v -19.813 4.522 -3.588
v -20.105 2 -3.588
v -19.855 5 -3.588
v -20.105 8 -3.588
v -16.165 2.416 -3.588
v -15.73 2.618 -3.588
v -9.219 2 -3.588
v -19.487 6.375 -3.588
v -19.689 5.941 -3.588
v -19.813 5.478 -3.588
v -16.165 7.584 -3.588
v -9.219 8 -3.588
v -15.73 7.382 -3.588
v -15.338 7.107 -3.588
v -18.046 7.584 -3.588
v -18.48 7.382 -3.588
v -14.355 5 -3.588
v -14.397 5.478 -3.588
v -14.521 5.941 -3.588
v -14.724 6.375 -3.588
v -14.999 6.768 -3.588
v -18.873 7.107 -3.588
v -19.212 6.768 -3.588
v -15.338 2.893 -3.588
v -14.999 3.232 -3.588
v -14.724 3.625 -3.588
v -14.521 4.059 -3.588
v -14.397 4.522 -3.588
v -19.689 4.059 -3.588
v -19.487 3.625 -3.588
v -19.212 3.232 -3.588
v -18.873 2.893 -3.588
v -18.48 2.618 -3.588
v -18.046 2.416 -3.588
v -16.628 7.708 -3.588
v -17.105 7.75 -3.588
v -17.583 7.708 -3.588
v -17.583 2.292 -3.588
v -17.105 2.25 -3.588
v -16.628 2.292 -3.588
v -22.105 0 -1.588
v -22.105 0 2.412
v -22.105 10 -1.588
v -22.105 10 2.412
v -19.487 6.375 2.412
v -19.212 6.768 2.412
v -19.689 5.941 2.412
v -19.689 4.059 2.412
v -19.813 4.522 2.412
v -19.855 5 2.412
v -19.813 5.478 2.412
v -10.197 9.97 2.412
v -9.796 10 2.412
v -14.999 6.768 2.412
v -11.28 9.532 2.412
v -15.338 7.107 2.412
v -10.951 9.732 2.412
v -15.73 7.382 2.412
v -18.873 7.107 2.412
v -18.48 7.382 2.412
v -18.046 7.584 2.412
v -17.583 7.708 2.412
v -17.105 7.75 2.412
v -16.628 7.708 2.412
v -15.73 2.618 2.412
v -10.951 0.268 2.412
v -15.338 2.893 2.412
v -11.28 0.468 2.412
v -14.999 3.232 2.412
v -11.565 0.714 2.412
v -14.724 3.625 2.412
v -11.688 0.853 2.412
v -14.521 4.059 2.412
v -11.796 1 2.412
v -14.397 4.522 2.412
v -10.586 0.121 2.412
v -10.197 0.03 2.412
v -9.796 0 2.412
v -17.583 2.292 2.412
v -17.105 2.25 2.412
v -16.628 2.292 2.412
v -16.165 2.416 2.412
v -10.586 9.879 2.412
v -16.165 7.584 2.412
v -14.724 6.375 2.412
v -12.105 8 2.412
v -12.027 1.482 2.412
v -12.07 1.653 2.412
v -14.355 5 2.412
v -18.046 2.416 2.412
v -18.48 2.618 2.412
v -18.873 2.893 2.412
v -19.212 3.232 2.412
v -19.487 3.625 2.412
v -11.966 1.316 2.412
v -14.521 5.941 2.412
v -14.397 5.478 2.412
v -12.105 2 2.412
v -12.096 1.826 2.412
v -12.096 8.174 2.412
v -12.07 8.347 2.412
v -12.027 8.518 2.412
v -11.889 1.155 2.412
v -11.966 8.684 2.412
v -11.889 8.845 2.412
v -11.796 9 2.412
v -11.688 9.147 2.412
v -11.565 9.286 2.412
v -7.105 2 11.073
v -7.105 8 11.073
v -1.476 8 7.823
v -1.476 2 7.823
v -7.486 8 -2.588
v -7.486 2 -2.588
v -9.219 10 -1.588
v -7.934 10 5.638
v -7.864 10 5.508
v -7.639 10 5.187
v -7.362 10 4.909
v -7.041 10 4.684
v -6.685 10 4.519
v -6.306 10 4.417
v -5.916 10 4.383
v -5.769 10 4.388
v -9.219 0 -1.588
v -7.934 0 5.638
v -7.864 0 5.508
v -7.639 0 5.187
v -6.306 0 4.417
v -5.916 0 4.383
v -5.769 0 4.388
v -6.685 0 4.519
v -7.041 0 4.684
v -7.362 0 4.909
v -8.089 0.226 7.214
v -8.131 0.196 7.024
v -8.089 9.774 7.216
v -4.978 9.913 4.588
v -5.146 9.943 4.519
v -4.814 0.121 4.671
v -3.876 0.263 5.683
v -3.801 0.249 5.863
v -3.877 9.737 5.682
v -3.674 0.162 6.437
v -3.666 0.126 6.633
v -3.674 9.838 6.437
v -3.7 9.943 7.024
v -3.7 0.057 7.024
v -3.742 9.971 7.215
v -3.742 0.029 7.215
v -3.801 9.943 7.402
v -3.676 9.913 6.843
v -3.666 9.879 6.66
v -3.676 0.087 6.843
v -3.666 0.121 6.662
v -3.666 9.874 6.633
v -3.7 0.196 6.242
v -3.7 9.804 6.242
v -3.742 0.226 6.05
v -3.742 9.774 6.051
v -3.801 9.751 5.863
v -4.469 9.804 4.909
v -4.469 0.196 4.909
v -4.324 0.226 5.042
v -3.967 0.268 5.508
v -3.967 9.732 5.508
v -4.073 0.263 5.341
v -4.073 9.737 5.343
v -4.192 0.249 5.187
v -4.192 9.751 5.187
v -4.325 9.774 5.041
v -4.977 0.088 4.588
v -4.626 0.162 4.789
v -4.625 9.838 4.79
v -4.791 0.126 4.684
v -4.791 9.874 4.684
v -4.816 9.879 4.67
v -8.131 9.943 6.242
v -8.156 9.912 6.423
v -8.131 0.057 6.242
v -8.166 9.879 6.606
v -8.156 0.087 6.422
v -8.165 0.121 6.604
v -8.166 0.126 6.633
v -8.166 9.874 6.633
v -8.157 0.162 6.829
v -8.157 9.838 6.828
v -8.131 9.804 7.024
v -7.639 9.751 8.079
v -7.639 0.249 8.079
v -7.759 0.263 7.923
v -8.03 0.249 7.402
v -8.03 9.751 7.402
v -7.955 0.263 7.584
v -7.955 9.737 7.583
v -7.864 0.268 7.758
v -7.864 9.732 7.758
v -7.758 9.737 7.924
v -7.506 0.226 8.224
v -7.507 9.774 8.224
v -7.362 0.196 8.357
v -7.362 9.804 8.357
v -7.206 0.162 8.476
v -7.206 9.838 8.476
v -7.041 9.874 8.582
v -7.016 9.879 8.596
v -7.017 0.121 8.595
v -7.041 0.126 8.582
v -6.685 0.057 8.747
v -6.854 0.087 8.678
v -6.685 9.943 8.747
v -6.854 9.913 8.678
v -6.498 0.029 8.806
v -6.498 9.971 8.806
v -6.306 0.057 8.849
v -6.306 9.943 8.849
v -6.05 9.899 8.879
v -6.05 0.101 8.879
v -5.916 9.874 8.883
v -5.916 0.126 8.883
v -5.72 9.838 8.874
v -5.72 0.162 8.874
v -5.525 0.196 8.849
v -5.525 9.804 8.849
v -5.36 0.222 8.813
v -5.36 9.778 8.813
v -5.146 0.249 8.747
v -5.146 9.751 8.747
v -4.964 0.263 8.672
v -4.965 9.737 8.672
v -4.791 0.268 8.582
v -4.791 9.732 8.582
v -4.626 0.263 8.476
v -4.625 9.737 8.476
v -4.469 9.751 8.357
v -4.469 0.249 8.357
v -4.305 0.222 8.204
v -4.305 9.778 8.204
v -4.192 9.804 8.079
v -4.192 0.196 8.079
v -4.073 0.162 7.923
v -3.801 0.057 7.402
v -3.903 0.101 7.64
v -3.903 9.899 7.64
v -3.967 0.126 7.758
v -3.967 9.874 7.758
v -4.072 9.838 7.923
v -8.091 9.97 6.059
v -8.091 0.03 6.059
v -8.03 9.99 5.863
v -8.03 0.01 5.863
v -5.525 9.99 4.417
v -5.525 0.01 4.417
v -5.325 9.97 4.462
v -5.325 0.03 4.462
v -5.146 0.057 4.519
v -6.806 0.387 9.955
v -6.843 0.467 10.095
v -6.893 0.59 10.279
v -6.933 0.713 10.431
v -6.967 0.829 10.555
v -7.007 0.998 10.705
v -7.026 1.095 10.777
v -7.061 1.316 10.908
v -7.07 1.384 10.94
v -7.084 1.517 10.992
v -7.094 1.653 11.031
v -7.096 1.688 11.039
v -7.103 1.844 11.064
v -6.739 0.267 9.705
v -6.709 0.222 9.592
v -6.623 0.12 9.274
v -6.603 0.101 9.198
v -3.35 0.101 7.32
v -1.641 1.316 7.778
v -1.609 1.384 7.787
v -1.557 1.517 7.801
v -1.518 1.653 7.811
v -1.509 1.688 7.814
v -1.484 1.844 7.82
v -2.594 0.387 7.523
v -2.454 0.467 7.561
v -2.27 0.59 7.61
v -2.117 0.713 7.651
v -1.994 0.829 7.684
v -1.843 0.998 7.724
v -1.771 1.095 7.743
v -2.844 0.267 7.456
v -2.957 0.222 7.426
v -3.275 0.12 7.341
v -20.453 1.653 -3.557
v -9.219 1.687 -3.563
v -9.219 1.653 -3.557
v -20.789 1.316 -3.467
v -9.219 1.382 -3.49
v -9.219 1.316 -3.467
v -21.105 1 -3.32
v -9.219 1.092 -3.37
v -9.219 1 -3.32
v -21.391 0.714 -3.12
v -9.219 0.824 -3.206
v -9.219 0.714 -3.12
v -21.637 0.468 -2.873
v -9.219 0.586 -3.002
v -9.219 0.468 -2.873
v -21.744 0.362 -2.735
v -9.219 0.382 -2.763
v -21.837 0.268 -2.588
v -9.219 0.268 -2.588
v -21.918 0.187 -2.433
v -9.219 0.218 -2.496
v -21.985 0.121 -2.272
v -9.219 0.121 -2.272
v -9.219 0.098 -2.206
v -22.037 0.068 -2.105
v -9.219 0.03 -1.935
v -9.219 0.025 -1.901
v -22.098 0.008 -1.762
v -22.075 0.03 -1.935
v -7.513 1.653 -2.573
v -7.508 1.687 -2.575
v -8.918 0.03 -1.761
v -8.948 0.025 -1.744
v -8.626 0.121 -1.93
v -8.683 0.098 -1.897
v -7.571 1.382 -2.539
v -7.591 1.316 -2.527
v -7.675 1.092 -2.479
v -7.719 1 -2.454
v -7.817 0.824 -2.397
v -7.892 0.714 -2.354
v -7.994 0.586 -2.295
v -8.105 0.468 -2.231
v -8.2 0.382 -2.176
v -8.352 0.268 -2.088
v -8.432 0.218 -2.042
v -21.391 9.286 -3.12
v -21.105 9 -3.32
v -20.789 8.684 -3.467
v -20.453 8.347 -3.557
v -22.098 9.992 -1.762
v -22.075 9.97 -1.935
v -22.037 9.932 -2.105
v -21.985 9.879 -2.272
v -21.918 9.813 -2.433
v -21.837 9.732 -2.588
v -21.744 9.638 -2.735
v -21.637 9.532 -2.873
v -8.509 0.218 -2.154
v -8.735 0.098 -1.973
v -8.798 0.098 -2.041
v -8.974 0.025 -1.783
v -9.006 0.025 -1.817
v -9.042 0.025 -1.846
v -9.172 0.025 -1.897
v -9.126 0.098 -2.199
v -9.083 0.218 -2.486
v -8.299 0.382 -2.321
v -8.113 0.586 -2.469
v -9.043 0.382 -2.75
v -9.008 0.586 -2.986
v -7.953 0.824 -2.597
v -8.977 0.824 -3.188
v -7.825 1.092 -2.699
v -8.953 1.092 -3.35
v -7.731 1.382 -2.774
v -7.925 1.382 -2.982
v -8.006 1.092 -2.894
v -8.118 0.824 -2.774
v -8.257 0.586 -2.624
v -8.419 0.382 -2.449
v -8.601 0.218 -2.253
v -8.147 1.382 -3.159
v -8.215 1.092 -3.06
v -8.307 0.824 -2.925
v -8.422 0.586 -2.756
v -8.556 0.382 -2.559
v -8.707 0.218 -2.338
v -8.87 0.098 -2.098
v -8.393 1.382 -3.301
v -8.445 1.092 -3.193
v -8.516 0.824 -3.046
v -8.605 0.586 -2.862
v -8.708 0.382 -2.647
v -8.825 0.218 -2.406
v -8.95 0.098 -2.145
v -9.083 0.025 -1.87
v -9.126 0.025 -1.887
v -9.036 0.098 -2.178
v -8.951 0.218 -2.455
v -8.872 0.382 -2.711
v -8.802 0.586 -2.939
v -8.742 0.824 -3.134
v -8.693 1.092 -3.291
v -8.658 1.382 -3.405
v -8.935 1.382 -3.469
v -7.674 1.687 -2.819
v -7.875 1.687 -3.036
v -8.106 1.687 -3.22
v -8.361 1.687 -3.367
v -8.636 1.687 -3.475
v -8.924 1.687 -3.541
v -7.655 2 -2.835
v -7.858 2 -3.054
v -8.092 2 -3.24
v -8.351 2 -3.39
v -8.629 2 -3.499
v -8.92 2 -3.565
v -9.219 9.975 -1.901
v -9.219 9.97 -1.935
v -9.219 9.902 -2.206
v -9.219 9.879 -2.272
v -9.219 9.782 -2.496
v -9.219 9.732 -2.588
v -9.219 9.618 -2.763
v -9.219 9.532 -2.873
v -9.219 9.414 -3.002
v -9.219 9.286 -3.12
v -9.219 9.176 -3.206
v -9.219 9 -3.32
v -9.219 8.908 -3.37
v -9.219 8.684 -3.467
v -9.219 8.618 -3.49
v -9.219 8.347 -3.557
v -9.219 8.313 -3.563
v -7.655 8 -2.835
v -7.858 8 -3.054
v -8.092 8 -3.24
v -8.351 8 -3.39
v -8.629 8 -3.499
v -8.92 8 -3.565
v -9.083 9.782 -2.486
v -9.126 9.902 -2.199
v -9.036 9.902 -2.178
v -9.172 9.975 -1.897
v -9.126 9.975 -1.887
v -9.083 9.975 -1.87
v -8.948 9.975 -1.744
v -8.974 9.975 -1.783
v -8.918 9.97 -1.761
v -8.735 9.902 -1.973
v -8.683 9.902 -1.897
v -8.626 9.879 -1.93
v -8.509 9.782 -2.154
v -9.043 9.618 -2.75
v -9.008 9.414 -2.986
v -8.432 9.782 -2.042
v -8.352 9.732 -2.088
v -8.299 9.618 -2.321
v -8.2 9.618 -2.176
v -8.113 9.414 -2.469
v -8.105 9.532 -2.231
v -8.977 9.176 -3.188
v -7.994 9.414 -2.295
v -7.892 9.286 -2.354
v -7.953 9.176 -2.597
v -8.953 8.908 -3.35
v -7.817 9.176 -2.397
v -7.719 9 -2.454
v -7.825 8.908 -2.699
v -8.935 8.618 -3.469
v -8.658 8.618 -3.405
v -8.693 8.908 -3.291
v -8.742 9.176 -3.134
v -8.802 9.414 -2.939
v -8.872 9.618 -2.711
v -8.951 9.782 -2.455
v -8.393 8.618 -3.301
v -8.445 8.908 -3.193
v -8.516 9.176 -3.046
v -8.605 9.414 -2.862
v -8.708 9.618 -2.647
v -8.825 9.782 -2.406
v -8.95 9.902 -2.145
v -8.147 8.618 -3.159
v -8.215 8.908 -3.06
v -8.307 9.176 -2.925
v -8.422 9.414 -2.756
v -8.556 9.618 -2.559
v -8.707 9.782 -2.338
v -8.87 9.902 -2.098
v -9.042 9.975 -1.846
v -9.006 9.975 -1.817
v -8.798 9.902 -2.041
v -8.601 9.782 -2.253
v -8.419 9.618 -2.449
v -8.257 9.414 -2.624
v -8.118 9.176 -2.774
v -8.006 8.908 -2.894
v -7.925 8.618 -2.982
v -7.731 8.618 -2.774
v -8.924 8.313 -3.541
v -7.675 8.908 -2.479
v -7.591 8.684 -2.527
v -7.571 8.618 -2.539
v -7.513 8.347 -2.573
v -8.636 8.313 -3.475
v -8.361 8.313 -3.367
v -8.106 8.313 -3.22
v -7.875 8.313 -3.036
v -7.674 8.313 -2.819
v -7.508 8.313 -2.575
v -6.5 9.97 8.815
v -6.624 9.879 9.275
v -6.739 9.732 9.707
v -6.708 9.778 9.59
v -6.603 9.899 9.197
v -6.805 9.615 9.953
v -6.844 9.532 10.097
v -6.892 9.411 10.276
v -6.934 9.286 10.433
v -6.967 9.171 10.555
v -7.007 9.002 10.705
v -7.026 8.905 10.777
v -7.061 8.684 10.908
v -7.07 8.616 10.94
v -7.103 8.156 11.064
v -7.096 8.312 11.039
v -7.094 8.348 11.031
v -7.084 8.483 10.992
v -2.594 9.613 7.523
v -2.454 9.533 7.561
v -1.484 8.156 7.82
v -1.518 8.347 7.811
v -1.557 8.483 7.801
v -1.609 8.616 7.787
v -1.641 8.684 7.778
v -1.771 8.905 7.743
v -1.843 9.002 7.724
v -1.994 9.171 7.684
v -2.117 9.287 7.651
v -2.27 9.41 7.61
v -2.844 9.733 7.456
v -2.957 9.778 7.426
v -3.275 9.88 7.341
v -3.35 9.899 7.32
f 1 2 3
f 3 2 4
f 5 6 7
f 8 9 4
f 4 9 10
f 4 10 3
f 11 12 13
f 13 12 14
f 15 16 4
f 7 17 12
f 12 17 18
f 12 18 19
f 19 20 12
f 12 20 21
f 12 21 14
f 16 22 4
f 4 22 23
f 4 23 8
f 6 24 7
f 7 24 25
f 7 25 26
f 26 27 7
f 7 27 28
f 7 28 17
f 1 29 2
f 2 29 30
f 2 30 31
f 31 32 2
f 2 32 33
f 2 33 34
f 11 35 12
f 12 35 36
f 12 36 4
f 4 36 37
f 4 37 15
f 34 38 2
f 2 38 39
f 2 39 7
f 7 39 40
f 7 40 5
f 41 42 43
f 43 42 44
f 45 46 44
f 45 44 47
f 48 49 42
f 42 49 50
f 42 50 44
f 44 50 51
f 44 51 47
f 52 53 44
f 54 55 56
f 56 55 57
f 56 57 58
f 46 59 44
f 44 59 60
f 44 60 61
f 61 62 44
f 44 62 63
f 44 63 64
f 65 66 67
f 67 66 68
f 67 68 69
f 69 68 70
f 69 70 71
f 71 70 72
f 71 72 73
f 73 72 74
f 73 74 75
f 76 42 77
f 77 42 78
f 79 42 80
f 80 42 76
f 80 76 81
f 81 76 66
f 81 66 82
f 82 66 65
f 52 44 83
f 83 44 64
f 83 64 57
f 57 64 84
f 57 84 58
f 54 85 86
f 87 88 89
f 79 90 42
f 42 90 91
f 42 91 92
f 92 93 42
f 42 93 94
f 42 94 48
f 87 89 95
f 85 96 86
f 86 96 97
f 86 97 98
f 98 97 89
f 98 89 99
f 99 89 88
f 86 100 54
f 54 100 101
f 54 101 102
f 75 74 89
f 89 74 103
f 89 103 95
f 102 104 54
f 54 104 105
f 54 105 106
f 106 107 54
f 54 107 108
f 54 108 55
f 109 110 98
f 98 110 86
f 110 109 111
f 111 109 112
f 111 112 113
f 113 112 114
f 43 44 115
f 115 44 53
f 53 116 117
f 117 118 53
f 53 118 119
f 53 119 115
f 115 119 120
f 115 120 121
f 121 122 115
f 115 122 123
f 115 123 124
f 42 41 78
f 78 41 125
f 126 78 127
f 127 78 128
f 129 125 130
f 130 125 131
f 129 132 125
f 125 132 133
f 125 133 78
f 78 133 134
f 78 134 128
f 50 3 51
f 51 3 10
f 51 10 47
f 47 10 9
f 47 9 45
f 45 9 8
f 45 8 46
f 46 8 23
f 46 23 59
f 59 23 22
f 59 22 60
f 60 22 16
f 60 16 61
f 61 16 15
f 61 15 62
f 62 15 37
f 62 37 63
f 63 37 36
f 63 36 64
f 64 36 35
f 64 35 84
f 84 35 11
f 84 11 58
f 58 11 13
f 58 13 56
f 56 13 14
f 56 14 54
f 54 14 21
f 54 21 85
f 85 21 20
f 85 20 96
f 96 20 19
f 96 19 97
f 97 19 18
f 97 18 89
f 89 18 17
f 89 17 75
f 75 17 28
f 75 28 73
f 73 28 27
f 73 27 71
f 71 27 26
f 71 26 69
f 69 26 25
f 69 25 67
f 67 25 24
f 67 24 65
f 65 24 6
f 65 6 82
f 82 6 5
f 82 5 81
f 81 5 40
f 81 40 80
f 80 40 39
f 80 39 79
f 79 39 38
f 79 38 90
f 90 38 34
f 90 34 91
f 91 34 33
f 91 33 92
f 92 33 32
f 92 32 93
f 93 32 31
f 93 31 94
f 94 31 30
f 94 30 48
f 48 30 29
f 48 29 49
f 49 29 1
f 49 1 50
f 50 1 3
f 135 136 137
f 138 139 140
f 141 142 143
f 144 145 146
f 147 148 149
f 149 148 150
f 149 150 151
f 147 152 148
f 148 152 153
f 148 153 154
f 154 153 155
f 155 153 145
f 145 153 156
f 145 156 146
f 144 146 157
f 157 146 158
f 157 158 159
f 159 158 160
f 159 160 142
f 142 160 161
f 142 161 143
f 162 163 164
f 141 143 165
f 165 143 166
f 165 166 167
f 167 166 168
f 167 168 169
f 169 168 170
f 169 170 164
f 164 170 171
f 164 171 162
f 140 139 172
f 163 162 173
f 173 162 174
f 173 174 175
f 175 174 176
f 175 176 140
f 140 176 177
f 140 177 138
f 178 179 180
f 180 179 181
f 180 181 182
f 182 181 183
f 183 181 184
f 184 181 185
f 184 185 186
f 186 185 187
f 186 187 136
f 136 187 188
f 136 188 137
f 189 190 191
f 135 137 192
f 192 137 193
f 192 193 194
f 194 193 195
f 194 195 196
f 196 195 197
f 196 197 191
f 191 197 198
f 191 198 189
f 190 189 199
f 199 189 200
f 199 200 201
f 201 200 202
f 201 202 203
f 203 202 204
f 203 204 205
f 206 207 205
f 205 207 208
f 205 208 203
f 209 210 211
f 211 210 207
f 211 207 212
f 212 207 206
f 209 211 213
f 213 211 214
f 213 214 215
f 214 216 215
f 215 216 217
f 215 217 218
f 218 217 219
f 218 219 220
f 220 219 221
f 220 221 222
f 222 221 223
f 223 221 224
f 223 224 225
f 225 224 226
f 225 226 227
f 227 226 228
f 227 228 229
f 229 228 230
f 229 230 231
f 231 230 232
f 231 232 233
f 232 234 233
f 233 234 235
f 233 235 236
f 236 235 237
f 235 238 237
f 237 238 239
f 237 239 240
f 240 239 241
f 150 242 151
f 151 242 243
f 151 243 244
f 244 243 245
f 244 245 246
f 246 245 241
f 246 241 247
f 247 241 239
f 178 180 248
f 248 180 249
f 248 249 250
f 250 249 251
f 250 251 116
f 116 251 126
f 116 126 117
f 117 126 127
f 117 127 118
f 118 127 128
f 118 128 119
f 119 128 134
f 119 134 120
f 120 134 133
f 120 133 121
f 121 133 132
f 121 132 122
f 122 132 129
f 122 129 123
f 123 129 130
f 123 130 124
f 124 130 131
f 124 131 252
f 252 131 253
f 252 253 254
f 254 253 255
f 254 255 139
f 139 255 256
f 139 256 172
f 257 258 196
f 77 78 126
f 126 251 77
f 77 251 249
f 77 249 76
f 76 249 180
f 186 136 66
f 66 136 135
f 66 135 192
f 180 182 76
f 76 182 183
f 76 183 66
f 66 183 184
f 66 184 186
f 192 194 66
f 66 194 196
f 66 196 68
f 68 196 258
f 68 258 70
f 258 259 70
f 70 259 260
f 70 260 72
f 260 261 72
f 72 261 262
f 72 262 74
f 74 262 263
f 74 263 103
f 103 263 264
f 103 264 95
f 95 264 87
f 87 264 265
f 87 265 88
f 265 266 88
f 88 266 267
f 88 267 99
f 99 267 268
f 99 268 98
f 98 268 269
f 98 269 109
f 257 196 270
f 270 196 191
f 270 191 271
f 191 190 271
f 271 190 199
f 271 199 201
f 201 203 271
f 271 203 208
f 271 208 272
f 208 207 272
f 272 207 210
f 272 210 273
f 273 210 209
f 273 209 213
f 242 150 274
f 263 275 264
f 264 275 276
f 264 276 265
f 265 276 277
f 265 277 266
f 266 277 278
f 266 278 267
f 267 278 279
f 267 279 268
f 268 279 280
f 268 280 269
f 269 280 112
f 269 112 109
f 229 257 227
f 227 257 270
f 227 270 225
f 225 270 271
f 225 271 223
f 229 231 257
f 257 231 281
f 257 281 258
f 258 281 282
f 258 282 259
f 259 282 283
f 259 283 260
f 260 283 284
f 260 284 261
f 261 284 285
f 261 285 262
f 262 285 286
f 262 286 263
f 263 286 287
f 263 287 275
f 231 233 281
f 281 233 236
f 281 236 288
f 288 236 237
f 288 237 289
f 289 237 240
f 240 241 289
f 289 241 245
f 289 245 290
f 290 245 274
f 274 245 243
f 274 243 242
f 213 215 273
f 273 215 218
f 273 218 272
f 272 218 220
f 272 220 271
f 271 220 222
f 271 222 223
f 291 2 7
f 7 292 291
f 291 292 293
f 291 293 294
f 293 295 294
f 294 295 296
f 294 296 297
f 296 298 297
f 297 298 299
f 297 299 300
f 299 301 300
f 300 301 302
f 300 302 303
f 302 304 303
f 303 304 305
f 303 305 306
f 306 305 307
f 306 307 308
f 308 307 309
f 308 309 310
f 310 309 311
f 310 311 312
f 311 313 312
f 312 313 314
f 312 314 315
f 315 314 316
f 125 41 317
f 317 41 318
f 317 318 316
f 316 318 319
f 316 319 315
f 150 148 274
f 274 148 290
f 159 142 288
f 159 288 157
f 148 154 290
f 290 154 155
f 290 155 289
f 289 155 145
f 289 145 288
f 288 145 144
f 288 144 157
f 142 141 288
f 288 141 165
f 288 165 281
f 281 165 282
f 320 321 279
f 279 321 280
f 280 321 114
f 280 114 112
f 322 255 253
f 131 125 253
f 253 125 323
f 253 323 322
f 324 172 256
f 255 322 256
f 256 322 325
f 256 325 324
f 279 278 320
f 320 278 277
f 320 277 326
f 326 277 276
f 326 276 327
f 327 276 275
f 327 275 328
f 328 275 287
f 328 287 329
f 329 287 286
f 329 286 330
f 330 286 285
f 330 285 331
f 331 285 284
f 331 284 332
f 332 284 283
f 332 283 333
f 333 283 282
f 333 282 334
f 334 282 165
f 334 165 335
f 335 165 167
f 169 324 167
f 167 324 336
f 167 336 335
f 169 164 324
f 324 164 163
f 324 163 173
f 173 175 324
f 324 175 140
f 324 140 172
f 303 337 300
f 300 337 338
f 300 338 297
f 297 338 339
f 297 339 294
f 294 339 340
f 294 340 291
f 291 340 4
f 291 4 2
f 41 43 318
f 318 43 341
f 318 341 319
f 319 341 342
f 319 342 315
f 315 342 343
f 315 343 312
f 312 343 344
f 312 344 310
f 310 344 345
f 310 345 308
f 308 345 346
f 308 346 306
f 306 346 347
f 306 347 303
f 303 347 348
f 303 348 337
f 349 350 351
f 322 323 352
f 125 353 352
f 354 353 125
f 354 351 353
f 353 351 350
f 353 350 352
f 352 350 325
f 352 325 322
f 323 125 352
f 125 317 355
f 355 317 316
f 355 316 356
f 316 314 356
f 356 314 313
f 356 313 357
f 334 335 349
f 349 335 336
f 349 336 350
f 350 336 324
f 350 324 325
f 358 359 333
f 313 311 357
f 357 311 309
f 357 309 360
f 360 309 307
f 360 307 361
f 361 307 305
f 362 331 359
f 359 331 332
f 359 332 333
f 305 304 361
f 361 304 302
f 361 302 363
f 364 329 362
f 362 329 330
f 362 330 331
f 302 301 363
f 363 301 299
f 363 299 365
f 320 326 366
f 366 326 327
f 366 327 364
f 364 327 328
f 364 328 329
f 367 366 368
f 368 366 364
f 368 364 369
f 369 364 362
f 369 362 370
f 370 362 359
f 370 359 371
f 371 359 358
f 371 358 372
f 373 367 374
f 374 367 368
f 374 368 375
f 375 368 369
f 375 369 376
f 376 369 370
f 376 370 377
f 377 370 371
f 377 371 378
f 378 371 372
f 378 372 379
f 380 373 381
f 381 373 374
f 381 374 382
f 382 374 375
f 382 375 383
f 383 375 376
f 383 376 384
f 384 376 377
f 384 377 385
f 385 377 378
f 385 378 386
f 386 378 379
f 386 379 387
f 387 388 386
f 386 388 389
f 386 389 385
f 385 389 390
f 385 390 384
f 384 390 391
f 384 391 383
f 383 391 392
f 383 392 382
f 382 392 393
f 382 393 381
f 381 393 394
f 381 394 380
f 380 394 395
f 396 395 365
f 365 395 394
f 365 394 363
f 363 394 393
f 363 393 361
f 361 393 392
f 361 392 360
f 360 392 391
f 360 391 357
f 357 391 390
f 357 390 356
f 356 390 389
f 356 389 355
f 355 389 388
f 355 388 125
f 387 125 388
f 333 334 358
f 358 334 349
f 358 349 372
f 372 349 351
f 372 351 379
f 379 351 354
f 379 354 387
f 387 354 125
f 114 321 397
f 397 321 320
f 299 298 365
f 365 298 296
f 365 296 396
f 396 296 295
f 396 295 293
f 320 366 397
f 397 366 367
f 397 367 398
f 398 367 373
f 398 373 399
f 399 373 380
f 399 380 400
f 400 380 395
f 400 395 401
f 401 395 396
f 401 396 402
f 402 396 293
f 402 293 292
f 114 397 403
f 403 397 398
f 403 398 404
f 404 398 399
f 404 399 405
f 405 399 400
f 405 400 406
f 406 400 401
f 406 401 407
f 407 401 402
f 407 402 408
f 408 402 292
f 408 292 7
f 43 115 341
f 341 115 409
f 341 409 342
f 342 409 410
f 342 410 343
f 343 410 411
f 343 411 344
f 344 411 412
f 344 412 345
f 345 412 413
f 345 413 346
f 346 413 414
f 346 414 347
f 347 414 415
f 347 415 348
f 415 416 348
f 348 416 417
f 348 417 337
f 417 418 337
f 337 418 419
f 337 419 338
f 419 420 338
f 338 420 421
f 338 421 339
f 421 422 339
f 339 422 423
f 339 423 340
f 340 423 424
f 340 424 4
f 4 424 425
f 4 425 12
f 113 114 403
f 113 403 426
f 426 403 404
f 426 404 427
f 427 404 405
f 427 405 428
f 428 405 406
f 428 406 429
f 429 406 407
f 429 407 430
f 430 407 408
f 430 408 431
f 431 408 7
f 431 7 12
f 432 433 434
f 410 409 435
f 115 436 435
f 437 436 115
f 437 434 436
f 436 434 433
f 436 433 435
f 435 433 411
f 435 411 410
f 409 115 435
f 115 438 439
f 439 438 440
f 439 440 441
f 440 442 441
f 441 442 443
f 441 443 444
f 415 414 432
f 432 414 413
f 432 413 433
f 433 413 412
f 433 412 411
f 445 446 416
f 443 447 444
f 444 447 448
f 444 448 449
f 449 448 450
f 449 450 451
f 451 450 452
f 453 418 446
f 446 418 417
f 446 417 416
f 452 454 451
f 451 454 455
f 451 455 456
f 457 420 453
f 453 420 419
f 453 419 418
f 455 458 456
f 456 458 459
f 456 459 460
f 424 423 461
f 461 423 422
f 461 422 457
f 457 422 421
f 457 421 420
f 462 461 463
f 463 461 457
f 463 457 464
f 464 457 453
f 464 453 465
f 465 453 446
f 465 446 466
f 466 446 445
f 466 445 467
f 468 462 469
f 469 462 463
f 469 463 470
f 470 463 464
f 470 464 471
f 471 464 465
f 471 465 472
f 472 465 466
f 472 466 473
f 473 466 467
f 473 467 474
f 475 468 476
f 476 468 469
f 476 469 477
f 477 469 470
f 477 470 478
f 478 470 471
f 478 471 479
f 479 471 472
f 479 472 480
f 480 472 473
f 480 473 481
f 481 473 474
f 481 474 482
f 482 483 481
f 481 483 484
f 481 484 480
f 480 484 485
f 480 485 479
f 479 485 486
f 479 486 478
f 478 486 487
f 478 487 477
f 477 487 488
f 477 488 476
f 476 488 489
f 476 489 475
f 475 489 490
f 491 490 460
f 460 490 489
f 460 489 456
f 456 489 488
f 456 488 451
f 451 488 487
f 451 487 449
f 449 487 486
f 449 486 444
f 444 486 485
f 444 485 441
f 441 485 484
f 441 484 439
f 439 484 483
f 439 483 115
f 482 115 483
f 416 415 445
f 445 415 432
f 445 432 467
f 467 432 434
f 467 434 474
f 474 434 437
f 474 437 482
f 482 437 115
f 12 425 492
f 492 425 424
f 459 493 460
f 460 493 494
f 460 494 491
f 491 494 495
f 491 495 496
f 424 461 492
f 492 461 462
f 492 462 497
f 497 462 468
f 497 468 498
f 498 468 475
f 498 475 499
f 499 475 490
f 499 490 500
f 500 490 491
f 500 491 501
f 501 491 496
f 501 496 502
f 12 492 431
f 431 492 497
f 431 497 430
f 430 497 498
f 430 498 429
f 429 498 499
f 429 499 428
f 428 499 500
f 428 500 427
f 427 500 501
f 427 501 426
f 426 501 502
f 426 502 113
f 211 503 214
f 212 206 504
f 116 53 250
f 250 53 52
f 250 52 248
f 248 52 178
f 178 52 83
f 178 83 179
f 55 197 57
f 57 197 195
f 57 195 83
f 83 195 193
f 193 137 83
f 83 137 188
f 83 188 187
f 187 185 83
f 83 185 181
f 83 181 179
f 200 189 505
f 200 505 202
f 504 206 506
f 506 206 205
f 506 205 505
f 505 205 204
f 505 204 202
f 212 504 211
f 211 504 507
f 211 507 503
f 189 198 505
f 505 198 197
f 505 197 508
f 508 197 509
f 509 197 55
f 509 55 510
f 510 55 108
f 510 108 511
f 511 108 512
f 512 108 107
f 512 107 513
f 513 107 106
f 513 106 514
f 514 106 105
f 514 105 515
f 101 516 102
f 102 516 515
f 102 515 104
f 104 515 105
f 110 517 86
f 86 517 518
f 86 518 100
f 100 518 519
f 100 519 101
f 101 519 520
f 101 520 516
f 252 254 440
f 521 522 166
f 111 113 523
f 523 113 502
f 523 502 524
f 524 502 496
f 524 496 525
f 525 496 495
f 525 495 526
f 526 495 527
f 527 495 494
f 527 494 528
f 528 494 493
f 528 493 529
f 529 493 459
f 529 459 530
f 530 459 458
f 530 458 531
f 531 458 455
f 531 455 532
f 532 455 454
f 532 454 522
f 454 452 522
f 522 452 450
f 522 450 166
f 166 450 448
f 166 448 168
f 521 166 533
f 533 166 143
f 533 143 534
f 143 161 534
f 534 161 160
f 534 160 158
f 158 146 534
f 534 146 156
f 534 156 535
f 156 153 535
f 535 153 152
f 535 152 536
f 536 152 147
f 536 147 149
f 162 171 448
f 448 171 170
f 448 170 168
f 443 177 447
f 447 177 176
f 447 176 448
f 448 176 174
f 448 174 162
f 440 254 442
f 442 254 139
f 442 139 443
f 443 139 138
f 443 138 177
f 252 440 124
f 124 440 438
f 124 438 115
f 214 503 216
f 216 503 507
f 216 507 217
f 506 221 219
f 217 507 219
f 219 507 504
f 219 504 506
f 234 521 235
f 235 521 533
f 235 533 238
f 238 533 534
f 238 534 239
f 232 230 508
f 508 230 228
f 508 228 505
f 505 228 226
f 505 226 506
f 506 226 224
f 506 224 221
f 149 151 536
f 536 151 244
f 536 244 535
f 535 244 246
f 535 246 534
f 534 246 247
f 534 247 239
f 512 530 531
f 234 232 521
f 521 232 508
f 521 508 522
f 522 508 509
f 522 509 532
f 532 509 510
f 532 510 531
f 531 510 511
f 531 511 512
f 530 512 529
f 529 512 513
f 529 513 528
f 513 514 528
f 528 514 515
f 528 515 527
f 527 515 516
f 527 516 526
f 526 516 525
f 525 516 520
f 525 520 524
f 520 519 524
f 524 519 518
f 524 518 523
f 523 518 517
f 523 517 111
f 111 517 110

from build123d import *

# Parameters (mm, degrees)
EXTRUDE_1_DEPTH          = 10
CUT_EXTRUDE_1_DEPTH      = 29.347234569
CUT_EXTRUDE_1_DEPTH_BACK = 29.347234569
SKETCH_2_R               = 2.75
SKETCH_3_R               = 2.25
CUT_EXTRUDE_2_DEPTH      = 27.669152308
FILLET_1_R               = 2


with BuildPart() as part:
    # Эскиз1 → Бобышка-Вытянуть1 (new body)
    with BuildSketch(Plane(origin=(0, 0, 0), x_dir=(1, 0, 0), z_dir=(0, 1, 0))):
        Polygon((-22.105263158, 3.587719298), (-22.105263158, -2.412280702), (-12.105263158, -2.412280702), (-7.105263158, -11.07253474), (-1.476098033, -7.82253474), (-8.063811274, 3.587719298), align=None)
    extrude(amount=EXTRUDE_1_DEPTH)

    # Эскиз2 → Вырез-Вытянуть1 (cut, two sides: drawn at the far end of the back side and taken through both)
    with BuildSketch(Plane(origin=(0, 0, -3.587719298), x_dir=(-1, 0, 0), z_dir=(0, 0, -1)).offset(-CUT_EXTRUDE_1_DEPTH_BACK)):
        with Locations((17.105263158, 5)):
            Circle(SKETCH_2_R)
    extrude(amount=CUT_EXTRUDE_1_DEPTH + CUT_EXTRUDE_1_DEPTH_BACK, mode=Mode.SUBTRACT)

    # Эскиз3 → Вырез-Вытянуть2 (cut, through all)
    with BuildSketch(Plane.XZ):
        with Locations(Location((-5.915680596, 6.632952177, 0), (0, 0, 270))):
            Circle(SKETCH_3_R)
    extrude(amount=-CUT_EXTRUDE_2_DEPTH, mode=Mode.SUBTRACT)

    # Скругление1
    # the kernel refuses this fillet: 2 mm, written as the material it takes off along each edge
    with BuildSketch(Plane(origin=(-9.218511812, 2, -1.587719298), x_dir=(0.8660254037844398, 0, -0.499999999999998), z_dir=(0, -1, 0))) as fillet_1_piece_1_section:
        Polygon((0, 0), (FILLET_1_R, 0), (FILLET_1_R, -FILLET_1_R * 0.57735026919), (FILLET_1_R * 0.5, -FILLET_1_R * 0.866025403784), align=None)
    fillet_1_piece_1 = extrude(amount=FILLET_1_R, mode=Mode.PRIVATE)
    fillet_1_piece_1 = fillet_1_piece_1 - Plane(origin=(-9.218511812, 2, -1.587719298), x_dir=(-0.500000000000001, 0, 0.8660254037844382), z_dir=(0, -1, 0)) * Sphere(FILLET_1_R, mode=Mode.PRIVATE)
    add(fillet_1_piece_1, mode=Mode.SUBTRACT)
    with BuildSketch(Plane(origin=(-9.218511812, 8, -1.587719298), x_dir=(0.8660254037844398, 0, -0.499999999999998), z_dir=(0, 1, 0))) as fillet_1_piece_2_section:
        Polygon((0, 0), (FILLET_1_R, 0), (FILLET_1_R, FILLET_1_R * 0.57735026919), (FILLET_1_R * 0.5, FILLET_1_R * 0.866025403784), align=None)
    fillet_1_piece_2 = extrude(amount=FILLET_1_R, mode=Mode.PRIVATE)
    fillet_1_piece_2 = fillet_1_piece_2 - Plane(origin=(-9.218511812, 8, -1.587719298), x_dir=(-0.500000000000001, 0, 0.8660254037844382), z_dir=(0, 1, 0)) * Sphere(FILLET_1_R, mode=Mode.PRIVATE)
    add(fillet_1_piece_2, mode=Mode.SUBTRACT)
    with BuildSketch(Plane(origin=(-8.063811274, 2, -3.587719298), x_dir=(-1, 0, 0), z_dir=(0, 1, 0))) as fillet_1_piece_3:
        with BuildLine():
            CenterArc((FILLET_1_R * 0.57735026919, FILLET_1_R), FILLET_1_R, 210, 60)
            Line((-FILLET_1_R * 0.288675134595, FILLET_1_R * 0.5), (0, 0))
            Line((0, 0), (FILLET_1_R * 0.57735026919, 0))
        make_face()
    extrude(amount=6, mode=Mode.SUBTRACT)
    with BuildSketch(Plane(origin=(-22.105263158, -5, -3.587719298), x_dir=(0, 0, 1), z_dir=(0, 1, 0))) as fillet_1_piece_4:
        with BuildLine():
            CenterArc((FILLET_1_R, FILLET_1_R), FILLET_1_R, 180, 90)
            Line((0, FILLET_1_R), (0, 0))
            Line((0, 0), (FILLET_1_R, 0))
        make_face()
    extrude(amount=20, mode=Mode.SUBTRACT)
    with BuildSketch(Plane(origin=(-14.605263158, 10, -1.917846317), x_dir=(0.8660254037844399, 0, -0.4999999999999979), z_dir=(0.49999999999999795, 0, 0.8660254037844399))) as fillet_1_piece_5_section:
        with BuildLine():
            CenterArc((FILLET_1_R, -FILLET_1_R), FILLET_1_R, 90, 90)
            Line((0, -FILLET_1_R), (0, 0))
            Line((0, 0), (FILLET_1_R, 0))
        make_face()
    fillet_1_piece_5 = extrude(amount=20, mode=Mode.PRIVATE)
    fillet_1_piece_5 = split(fillet_1_piece_5, bisect_by=Plane(origin=(-7.90513861, 9.542907556, 2.412280702), z_dir=(0, 0, 1)), keep=Keep.TOP, mode=Mode.PRIVATE)
    add(fillet_1_piece_5, mode=Mode.SUBTRACT)
    with BuildSketch(Plane(origin=(-11.435390177, 10, 13.57253474), x_dir=(-0.4999999999999979, 0, -0.8660254037844399), z_dir=(0.8660254037844399, 0, -0.49999999999999795))) as fillet_1_piece_6:
        with BuildLine():
            CenterArc((FILLET_1_R, -FILLET_1_R), FILLET_1_R, 90, 90)
            Line((0, -FILLET_1_R), (0, 0))
            Line((0, 0), (FILLET_1_R, 0))
        make_face()
    extrude(amount=16.5, mode=Mode.SUBTRACT)
    with BuildSketch(Plane(origin=(1.023901967, 10, 12.152661759), x_dir=(-0.8660254037844398, 0, 0.499999999999998), z_dir=(-0.499999999999998, 0, -0.8660254037844398))) as fillet_1_piece_7:
        with BuildLine():
            CenterArc((FILLET_1_R, -FILLET_1_R), FILLET_1_R, 90, 90)
            Line((0, -FILLET_1_R), (0, 0))
            Line((0, 0), (FILLET_1_R, 0))
        make_face()
    extrude(amount=17.020725942, mode=Mode.SUBTRACT)
    with BuildSketch(Plane(origin=(-9.218511812, 10, -3.587719298), x_dir=(0, -1, 0), z_dir=(-1, 0, 0))) as fillet_1_piece_8:
        with BuildLine():
            CenterArc((FILLET_1_R, FILLET_1_R), FILLET_1_R, 180, 90)
            Line((0, FILLET_1_R), (0, 0))
            Line((0, 0), (FILLET_1_R, 0))
        make_face()
    extrude(amount=17.886751346, mode=Mode.SUBTRACT)
    with BuildSketch(Plane(origin=(1.023901967, 0, 12.152661759), x_dir=(-0.8660254037844398, 0, 0.499999999999998), z_dir=(-0.499999999999998, 0, -0.8660254037844398))) as fillet_1_piece_9:
        with BuildLine():
            CenterArc((FILLET_1_R, FILLET_1_R), FILLET_1_R, 180, 90)
            Line((0, FILLET_1_R), (0, 0))
            Line((0, 0), (FILLET_1_R, 0))
        make_face()
    extrude(amount=17.020725942, mode=Mode.SUBTRACT)
    with BuildSketch(Plane(origin=(-11.435390177, 0, 13.57253474), x_dir=(-0.4999999999999979, 0, -0.8660254037844399), z_dir=(0.8660254037844399, 0, -0.49999999999999795))) as fillet_1_piece_10:
        with BuildLine():
            CenterArc((FILLET_1_R, FILLET_1_R), FILLET_1_R, 180, 90)
            Line((0, FILLET_1_R), (0, 0))
            Line((0, 0), (FILLET_1_R, 0))
        make_face()
    extrude(amount=16.5, mode=Mode.SUBTRACT)
    with BuildSketch(Plane(origin=(-14.605263158, 0, -1.917846317), x_dir=(0.8660254037844398, 0, -0.4999999999999979), z_dir=(0.49999999999999795, 0, 0.8660254037844399))) as fillet_1_piece_11_section:
        with BuildLine():
            CenterArc((FILLET_1_R, FILLET_1_R), FILLET_1_R, 180, 90)
            Line((0, FILLET_1_R), (0, 0))
            Line((0, 0), (FILLET_1_R, 0))
        make_face()
    fillet_1_piece_11 = extrude(amount=20, mode=Mode.PRIVATE)
    fillet_1_piece_11 = split(fillet_1_piece_11, bisect_by=Plane(origin=(-7.90513861, 0.457092444, 2.412280702), z_dir=(0, 0, 1)), keep=Keep.TOP, mode=Mode.PRIVATE)
    add(fillet_1_piece_11, mode=Mode.SUBTRACT)
    with BuildSketch(Plane(origin=(-9.218511812, 0, -3.587719298), x_dir=(0, 1, 0), z_dir=(-1, 0, 0))) as fillet_1_piece_12:
        with BuildLine():
            CenterArc((FILLET_1_R, -FILLET_1_R), FILLET_1_R, 90, 90)
            Line((0, -FILLET_1_R), (0, 0))
            Line((0, 0), (FILLET_1_R, 0))
        make_face()
    extrude(amount=17.886751346, mode=Mode.SUBTRACT)


solid = part.part
